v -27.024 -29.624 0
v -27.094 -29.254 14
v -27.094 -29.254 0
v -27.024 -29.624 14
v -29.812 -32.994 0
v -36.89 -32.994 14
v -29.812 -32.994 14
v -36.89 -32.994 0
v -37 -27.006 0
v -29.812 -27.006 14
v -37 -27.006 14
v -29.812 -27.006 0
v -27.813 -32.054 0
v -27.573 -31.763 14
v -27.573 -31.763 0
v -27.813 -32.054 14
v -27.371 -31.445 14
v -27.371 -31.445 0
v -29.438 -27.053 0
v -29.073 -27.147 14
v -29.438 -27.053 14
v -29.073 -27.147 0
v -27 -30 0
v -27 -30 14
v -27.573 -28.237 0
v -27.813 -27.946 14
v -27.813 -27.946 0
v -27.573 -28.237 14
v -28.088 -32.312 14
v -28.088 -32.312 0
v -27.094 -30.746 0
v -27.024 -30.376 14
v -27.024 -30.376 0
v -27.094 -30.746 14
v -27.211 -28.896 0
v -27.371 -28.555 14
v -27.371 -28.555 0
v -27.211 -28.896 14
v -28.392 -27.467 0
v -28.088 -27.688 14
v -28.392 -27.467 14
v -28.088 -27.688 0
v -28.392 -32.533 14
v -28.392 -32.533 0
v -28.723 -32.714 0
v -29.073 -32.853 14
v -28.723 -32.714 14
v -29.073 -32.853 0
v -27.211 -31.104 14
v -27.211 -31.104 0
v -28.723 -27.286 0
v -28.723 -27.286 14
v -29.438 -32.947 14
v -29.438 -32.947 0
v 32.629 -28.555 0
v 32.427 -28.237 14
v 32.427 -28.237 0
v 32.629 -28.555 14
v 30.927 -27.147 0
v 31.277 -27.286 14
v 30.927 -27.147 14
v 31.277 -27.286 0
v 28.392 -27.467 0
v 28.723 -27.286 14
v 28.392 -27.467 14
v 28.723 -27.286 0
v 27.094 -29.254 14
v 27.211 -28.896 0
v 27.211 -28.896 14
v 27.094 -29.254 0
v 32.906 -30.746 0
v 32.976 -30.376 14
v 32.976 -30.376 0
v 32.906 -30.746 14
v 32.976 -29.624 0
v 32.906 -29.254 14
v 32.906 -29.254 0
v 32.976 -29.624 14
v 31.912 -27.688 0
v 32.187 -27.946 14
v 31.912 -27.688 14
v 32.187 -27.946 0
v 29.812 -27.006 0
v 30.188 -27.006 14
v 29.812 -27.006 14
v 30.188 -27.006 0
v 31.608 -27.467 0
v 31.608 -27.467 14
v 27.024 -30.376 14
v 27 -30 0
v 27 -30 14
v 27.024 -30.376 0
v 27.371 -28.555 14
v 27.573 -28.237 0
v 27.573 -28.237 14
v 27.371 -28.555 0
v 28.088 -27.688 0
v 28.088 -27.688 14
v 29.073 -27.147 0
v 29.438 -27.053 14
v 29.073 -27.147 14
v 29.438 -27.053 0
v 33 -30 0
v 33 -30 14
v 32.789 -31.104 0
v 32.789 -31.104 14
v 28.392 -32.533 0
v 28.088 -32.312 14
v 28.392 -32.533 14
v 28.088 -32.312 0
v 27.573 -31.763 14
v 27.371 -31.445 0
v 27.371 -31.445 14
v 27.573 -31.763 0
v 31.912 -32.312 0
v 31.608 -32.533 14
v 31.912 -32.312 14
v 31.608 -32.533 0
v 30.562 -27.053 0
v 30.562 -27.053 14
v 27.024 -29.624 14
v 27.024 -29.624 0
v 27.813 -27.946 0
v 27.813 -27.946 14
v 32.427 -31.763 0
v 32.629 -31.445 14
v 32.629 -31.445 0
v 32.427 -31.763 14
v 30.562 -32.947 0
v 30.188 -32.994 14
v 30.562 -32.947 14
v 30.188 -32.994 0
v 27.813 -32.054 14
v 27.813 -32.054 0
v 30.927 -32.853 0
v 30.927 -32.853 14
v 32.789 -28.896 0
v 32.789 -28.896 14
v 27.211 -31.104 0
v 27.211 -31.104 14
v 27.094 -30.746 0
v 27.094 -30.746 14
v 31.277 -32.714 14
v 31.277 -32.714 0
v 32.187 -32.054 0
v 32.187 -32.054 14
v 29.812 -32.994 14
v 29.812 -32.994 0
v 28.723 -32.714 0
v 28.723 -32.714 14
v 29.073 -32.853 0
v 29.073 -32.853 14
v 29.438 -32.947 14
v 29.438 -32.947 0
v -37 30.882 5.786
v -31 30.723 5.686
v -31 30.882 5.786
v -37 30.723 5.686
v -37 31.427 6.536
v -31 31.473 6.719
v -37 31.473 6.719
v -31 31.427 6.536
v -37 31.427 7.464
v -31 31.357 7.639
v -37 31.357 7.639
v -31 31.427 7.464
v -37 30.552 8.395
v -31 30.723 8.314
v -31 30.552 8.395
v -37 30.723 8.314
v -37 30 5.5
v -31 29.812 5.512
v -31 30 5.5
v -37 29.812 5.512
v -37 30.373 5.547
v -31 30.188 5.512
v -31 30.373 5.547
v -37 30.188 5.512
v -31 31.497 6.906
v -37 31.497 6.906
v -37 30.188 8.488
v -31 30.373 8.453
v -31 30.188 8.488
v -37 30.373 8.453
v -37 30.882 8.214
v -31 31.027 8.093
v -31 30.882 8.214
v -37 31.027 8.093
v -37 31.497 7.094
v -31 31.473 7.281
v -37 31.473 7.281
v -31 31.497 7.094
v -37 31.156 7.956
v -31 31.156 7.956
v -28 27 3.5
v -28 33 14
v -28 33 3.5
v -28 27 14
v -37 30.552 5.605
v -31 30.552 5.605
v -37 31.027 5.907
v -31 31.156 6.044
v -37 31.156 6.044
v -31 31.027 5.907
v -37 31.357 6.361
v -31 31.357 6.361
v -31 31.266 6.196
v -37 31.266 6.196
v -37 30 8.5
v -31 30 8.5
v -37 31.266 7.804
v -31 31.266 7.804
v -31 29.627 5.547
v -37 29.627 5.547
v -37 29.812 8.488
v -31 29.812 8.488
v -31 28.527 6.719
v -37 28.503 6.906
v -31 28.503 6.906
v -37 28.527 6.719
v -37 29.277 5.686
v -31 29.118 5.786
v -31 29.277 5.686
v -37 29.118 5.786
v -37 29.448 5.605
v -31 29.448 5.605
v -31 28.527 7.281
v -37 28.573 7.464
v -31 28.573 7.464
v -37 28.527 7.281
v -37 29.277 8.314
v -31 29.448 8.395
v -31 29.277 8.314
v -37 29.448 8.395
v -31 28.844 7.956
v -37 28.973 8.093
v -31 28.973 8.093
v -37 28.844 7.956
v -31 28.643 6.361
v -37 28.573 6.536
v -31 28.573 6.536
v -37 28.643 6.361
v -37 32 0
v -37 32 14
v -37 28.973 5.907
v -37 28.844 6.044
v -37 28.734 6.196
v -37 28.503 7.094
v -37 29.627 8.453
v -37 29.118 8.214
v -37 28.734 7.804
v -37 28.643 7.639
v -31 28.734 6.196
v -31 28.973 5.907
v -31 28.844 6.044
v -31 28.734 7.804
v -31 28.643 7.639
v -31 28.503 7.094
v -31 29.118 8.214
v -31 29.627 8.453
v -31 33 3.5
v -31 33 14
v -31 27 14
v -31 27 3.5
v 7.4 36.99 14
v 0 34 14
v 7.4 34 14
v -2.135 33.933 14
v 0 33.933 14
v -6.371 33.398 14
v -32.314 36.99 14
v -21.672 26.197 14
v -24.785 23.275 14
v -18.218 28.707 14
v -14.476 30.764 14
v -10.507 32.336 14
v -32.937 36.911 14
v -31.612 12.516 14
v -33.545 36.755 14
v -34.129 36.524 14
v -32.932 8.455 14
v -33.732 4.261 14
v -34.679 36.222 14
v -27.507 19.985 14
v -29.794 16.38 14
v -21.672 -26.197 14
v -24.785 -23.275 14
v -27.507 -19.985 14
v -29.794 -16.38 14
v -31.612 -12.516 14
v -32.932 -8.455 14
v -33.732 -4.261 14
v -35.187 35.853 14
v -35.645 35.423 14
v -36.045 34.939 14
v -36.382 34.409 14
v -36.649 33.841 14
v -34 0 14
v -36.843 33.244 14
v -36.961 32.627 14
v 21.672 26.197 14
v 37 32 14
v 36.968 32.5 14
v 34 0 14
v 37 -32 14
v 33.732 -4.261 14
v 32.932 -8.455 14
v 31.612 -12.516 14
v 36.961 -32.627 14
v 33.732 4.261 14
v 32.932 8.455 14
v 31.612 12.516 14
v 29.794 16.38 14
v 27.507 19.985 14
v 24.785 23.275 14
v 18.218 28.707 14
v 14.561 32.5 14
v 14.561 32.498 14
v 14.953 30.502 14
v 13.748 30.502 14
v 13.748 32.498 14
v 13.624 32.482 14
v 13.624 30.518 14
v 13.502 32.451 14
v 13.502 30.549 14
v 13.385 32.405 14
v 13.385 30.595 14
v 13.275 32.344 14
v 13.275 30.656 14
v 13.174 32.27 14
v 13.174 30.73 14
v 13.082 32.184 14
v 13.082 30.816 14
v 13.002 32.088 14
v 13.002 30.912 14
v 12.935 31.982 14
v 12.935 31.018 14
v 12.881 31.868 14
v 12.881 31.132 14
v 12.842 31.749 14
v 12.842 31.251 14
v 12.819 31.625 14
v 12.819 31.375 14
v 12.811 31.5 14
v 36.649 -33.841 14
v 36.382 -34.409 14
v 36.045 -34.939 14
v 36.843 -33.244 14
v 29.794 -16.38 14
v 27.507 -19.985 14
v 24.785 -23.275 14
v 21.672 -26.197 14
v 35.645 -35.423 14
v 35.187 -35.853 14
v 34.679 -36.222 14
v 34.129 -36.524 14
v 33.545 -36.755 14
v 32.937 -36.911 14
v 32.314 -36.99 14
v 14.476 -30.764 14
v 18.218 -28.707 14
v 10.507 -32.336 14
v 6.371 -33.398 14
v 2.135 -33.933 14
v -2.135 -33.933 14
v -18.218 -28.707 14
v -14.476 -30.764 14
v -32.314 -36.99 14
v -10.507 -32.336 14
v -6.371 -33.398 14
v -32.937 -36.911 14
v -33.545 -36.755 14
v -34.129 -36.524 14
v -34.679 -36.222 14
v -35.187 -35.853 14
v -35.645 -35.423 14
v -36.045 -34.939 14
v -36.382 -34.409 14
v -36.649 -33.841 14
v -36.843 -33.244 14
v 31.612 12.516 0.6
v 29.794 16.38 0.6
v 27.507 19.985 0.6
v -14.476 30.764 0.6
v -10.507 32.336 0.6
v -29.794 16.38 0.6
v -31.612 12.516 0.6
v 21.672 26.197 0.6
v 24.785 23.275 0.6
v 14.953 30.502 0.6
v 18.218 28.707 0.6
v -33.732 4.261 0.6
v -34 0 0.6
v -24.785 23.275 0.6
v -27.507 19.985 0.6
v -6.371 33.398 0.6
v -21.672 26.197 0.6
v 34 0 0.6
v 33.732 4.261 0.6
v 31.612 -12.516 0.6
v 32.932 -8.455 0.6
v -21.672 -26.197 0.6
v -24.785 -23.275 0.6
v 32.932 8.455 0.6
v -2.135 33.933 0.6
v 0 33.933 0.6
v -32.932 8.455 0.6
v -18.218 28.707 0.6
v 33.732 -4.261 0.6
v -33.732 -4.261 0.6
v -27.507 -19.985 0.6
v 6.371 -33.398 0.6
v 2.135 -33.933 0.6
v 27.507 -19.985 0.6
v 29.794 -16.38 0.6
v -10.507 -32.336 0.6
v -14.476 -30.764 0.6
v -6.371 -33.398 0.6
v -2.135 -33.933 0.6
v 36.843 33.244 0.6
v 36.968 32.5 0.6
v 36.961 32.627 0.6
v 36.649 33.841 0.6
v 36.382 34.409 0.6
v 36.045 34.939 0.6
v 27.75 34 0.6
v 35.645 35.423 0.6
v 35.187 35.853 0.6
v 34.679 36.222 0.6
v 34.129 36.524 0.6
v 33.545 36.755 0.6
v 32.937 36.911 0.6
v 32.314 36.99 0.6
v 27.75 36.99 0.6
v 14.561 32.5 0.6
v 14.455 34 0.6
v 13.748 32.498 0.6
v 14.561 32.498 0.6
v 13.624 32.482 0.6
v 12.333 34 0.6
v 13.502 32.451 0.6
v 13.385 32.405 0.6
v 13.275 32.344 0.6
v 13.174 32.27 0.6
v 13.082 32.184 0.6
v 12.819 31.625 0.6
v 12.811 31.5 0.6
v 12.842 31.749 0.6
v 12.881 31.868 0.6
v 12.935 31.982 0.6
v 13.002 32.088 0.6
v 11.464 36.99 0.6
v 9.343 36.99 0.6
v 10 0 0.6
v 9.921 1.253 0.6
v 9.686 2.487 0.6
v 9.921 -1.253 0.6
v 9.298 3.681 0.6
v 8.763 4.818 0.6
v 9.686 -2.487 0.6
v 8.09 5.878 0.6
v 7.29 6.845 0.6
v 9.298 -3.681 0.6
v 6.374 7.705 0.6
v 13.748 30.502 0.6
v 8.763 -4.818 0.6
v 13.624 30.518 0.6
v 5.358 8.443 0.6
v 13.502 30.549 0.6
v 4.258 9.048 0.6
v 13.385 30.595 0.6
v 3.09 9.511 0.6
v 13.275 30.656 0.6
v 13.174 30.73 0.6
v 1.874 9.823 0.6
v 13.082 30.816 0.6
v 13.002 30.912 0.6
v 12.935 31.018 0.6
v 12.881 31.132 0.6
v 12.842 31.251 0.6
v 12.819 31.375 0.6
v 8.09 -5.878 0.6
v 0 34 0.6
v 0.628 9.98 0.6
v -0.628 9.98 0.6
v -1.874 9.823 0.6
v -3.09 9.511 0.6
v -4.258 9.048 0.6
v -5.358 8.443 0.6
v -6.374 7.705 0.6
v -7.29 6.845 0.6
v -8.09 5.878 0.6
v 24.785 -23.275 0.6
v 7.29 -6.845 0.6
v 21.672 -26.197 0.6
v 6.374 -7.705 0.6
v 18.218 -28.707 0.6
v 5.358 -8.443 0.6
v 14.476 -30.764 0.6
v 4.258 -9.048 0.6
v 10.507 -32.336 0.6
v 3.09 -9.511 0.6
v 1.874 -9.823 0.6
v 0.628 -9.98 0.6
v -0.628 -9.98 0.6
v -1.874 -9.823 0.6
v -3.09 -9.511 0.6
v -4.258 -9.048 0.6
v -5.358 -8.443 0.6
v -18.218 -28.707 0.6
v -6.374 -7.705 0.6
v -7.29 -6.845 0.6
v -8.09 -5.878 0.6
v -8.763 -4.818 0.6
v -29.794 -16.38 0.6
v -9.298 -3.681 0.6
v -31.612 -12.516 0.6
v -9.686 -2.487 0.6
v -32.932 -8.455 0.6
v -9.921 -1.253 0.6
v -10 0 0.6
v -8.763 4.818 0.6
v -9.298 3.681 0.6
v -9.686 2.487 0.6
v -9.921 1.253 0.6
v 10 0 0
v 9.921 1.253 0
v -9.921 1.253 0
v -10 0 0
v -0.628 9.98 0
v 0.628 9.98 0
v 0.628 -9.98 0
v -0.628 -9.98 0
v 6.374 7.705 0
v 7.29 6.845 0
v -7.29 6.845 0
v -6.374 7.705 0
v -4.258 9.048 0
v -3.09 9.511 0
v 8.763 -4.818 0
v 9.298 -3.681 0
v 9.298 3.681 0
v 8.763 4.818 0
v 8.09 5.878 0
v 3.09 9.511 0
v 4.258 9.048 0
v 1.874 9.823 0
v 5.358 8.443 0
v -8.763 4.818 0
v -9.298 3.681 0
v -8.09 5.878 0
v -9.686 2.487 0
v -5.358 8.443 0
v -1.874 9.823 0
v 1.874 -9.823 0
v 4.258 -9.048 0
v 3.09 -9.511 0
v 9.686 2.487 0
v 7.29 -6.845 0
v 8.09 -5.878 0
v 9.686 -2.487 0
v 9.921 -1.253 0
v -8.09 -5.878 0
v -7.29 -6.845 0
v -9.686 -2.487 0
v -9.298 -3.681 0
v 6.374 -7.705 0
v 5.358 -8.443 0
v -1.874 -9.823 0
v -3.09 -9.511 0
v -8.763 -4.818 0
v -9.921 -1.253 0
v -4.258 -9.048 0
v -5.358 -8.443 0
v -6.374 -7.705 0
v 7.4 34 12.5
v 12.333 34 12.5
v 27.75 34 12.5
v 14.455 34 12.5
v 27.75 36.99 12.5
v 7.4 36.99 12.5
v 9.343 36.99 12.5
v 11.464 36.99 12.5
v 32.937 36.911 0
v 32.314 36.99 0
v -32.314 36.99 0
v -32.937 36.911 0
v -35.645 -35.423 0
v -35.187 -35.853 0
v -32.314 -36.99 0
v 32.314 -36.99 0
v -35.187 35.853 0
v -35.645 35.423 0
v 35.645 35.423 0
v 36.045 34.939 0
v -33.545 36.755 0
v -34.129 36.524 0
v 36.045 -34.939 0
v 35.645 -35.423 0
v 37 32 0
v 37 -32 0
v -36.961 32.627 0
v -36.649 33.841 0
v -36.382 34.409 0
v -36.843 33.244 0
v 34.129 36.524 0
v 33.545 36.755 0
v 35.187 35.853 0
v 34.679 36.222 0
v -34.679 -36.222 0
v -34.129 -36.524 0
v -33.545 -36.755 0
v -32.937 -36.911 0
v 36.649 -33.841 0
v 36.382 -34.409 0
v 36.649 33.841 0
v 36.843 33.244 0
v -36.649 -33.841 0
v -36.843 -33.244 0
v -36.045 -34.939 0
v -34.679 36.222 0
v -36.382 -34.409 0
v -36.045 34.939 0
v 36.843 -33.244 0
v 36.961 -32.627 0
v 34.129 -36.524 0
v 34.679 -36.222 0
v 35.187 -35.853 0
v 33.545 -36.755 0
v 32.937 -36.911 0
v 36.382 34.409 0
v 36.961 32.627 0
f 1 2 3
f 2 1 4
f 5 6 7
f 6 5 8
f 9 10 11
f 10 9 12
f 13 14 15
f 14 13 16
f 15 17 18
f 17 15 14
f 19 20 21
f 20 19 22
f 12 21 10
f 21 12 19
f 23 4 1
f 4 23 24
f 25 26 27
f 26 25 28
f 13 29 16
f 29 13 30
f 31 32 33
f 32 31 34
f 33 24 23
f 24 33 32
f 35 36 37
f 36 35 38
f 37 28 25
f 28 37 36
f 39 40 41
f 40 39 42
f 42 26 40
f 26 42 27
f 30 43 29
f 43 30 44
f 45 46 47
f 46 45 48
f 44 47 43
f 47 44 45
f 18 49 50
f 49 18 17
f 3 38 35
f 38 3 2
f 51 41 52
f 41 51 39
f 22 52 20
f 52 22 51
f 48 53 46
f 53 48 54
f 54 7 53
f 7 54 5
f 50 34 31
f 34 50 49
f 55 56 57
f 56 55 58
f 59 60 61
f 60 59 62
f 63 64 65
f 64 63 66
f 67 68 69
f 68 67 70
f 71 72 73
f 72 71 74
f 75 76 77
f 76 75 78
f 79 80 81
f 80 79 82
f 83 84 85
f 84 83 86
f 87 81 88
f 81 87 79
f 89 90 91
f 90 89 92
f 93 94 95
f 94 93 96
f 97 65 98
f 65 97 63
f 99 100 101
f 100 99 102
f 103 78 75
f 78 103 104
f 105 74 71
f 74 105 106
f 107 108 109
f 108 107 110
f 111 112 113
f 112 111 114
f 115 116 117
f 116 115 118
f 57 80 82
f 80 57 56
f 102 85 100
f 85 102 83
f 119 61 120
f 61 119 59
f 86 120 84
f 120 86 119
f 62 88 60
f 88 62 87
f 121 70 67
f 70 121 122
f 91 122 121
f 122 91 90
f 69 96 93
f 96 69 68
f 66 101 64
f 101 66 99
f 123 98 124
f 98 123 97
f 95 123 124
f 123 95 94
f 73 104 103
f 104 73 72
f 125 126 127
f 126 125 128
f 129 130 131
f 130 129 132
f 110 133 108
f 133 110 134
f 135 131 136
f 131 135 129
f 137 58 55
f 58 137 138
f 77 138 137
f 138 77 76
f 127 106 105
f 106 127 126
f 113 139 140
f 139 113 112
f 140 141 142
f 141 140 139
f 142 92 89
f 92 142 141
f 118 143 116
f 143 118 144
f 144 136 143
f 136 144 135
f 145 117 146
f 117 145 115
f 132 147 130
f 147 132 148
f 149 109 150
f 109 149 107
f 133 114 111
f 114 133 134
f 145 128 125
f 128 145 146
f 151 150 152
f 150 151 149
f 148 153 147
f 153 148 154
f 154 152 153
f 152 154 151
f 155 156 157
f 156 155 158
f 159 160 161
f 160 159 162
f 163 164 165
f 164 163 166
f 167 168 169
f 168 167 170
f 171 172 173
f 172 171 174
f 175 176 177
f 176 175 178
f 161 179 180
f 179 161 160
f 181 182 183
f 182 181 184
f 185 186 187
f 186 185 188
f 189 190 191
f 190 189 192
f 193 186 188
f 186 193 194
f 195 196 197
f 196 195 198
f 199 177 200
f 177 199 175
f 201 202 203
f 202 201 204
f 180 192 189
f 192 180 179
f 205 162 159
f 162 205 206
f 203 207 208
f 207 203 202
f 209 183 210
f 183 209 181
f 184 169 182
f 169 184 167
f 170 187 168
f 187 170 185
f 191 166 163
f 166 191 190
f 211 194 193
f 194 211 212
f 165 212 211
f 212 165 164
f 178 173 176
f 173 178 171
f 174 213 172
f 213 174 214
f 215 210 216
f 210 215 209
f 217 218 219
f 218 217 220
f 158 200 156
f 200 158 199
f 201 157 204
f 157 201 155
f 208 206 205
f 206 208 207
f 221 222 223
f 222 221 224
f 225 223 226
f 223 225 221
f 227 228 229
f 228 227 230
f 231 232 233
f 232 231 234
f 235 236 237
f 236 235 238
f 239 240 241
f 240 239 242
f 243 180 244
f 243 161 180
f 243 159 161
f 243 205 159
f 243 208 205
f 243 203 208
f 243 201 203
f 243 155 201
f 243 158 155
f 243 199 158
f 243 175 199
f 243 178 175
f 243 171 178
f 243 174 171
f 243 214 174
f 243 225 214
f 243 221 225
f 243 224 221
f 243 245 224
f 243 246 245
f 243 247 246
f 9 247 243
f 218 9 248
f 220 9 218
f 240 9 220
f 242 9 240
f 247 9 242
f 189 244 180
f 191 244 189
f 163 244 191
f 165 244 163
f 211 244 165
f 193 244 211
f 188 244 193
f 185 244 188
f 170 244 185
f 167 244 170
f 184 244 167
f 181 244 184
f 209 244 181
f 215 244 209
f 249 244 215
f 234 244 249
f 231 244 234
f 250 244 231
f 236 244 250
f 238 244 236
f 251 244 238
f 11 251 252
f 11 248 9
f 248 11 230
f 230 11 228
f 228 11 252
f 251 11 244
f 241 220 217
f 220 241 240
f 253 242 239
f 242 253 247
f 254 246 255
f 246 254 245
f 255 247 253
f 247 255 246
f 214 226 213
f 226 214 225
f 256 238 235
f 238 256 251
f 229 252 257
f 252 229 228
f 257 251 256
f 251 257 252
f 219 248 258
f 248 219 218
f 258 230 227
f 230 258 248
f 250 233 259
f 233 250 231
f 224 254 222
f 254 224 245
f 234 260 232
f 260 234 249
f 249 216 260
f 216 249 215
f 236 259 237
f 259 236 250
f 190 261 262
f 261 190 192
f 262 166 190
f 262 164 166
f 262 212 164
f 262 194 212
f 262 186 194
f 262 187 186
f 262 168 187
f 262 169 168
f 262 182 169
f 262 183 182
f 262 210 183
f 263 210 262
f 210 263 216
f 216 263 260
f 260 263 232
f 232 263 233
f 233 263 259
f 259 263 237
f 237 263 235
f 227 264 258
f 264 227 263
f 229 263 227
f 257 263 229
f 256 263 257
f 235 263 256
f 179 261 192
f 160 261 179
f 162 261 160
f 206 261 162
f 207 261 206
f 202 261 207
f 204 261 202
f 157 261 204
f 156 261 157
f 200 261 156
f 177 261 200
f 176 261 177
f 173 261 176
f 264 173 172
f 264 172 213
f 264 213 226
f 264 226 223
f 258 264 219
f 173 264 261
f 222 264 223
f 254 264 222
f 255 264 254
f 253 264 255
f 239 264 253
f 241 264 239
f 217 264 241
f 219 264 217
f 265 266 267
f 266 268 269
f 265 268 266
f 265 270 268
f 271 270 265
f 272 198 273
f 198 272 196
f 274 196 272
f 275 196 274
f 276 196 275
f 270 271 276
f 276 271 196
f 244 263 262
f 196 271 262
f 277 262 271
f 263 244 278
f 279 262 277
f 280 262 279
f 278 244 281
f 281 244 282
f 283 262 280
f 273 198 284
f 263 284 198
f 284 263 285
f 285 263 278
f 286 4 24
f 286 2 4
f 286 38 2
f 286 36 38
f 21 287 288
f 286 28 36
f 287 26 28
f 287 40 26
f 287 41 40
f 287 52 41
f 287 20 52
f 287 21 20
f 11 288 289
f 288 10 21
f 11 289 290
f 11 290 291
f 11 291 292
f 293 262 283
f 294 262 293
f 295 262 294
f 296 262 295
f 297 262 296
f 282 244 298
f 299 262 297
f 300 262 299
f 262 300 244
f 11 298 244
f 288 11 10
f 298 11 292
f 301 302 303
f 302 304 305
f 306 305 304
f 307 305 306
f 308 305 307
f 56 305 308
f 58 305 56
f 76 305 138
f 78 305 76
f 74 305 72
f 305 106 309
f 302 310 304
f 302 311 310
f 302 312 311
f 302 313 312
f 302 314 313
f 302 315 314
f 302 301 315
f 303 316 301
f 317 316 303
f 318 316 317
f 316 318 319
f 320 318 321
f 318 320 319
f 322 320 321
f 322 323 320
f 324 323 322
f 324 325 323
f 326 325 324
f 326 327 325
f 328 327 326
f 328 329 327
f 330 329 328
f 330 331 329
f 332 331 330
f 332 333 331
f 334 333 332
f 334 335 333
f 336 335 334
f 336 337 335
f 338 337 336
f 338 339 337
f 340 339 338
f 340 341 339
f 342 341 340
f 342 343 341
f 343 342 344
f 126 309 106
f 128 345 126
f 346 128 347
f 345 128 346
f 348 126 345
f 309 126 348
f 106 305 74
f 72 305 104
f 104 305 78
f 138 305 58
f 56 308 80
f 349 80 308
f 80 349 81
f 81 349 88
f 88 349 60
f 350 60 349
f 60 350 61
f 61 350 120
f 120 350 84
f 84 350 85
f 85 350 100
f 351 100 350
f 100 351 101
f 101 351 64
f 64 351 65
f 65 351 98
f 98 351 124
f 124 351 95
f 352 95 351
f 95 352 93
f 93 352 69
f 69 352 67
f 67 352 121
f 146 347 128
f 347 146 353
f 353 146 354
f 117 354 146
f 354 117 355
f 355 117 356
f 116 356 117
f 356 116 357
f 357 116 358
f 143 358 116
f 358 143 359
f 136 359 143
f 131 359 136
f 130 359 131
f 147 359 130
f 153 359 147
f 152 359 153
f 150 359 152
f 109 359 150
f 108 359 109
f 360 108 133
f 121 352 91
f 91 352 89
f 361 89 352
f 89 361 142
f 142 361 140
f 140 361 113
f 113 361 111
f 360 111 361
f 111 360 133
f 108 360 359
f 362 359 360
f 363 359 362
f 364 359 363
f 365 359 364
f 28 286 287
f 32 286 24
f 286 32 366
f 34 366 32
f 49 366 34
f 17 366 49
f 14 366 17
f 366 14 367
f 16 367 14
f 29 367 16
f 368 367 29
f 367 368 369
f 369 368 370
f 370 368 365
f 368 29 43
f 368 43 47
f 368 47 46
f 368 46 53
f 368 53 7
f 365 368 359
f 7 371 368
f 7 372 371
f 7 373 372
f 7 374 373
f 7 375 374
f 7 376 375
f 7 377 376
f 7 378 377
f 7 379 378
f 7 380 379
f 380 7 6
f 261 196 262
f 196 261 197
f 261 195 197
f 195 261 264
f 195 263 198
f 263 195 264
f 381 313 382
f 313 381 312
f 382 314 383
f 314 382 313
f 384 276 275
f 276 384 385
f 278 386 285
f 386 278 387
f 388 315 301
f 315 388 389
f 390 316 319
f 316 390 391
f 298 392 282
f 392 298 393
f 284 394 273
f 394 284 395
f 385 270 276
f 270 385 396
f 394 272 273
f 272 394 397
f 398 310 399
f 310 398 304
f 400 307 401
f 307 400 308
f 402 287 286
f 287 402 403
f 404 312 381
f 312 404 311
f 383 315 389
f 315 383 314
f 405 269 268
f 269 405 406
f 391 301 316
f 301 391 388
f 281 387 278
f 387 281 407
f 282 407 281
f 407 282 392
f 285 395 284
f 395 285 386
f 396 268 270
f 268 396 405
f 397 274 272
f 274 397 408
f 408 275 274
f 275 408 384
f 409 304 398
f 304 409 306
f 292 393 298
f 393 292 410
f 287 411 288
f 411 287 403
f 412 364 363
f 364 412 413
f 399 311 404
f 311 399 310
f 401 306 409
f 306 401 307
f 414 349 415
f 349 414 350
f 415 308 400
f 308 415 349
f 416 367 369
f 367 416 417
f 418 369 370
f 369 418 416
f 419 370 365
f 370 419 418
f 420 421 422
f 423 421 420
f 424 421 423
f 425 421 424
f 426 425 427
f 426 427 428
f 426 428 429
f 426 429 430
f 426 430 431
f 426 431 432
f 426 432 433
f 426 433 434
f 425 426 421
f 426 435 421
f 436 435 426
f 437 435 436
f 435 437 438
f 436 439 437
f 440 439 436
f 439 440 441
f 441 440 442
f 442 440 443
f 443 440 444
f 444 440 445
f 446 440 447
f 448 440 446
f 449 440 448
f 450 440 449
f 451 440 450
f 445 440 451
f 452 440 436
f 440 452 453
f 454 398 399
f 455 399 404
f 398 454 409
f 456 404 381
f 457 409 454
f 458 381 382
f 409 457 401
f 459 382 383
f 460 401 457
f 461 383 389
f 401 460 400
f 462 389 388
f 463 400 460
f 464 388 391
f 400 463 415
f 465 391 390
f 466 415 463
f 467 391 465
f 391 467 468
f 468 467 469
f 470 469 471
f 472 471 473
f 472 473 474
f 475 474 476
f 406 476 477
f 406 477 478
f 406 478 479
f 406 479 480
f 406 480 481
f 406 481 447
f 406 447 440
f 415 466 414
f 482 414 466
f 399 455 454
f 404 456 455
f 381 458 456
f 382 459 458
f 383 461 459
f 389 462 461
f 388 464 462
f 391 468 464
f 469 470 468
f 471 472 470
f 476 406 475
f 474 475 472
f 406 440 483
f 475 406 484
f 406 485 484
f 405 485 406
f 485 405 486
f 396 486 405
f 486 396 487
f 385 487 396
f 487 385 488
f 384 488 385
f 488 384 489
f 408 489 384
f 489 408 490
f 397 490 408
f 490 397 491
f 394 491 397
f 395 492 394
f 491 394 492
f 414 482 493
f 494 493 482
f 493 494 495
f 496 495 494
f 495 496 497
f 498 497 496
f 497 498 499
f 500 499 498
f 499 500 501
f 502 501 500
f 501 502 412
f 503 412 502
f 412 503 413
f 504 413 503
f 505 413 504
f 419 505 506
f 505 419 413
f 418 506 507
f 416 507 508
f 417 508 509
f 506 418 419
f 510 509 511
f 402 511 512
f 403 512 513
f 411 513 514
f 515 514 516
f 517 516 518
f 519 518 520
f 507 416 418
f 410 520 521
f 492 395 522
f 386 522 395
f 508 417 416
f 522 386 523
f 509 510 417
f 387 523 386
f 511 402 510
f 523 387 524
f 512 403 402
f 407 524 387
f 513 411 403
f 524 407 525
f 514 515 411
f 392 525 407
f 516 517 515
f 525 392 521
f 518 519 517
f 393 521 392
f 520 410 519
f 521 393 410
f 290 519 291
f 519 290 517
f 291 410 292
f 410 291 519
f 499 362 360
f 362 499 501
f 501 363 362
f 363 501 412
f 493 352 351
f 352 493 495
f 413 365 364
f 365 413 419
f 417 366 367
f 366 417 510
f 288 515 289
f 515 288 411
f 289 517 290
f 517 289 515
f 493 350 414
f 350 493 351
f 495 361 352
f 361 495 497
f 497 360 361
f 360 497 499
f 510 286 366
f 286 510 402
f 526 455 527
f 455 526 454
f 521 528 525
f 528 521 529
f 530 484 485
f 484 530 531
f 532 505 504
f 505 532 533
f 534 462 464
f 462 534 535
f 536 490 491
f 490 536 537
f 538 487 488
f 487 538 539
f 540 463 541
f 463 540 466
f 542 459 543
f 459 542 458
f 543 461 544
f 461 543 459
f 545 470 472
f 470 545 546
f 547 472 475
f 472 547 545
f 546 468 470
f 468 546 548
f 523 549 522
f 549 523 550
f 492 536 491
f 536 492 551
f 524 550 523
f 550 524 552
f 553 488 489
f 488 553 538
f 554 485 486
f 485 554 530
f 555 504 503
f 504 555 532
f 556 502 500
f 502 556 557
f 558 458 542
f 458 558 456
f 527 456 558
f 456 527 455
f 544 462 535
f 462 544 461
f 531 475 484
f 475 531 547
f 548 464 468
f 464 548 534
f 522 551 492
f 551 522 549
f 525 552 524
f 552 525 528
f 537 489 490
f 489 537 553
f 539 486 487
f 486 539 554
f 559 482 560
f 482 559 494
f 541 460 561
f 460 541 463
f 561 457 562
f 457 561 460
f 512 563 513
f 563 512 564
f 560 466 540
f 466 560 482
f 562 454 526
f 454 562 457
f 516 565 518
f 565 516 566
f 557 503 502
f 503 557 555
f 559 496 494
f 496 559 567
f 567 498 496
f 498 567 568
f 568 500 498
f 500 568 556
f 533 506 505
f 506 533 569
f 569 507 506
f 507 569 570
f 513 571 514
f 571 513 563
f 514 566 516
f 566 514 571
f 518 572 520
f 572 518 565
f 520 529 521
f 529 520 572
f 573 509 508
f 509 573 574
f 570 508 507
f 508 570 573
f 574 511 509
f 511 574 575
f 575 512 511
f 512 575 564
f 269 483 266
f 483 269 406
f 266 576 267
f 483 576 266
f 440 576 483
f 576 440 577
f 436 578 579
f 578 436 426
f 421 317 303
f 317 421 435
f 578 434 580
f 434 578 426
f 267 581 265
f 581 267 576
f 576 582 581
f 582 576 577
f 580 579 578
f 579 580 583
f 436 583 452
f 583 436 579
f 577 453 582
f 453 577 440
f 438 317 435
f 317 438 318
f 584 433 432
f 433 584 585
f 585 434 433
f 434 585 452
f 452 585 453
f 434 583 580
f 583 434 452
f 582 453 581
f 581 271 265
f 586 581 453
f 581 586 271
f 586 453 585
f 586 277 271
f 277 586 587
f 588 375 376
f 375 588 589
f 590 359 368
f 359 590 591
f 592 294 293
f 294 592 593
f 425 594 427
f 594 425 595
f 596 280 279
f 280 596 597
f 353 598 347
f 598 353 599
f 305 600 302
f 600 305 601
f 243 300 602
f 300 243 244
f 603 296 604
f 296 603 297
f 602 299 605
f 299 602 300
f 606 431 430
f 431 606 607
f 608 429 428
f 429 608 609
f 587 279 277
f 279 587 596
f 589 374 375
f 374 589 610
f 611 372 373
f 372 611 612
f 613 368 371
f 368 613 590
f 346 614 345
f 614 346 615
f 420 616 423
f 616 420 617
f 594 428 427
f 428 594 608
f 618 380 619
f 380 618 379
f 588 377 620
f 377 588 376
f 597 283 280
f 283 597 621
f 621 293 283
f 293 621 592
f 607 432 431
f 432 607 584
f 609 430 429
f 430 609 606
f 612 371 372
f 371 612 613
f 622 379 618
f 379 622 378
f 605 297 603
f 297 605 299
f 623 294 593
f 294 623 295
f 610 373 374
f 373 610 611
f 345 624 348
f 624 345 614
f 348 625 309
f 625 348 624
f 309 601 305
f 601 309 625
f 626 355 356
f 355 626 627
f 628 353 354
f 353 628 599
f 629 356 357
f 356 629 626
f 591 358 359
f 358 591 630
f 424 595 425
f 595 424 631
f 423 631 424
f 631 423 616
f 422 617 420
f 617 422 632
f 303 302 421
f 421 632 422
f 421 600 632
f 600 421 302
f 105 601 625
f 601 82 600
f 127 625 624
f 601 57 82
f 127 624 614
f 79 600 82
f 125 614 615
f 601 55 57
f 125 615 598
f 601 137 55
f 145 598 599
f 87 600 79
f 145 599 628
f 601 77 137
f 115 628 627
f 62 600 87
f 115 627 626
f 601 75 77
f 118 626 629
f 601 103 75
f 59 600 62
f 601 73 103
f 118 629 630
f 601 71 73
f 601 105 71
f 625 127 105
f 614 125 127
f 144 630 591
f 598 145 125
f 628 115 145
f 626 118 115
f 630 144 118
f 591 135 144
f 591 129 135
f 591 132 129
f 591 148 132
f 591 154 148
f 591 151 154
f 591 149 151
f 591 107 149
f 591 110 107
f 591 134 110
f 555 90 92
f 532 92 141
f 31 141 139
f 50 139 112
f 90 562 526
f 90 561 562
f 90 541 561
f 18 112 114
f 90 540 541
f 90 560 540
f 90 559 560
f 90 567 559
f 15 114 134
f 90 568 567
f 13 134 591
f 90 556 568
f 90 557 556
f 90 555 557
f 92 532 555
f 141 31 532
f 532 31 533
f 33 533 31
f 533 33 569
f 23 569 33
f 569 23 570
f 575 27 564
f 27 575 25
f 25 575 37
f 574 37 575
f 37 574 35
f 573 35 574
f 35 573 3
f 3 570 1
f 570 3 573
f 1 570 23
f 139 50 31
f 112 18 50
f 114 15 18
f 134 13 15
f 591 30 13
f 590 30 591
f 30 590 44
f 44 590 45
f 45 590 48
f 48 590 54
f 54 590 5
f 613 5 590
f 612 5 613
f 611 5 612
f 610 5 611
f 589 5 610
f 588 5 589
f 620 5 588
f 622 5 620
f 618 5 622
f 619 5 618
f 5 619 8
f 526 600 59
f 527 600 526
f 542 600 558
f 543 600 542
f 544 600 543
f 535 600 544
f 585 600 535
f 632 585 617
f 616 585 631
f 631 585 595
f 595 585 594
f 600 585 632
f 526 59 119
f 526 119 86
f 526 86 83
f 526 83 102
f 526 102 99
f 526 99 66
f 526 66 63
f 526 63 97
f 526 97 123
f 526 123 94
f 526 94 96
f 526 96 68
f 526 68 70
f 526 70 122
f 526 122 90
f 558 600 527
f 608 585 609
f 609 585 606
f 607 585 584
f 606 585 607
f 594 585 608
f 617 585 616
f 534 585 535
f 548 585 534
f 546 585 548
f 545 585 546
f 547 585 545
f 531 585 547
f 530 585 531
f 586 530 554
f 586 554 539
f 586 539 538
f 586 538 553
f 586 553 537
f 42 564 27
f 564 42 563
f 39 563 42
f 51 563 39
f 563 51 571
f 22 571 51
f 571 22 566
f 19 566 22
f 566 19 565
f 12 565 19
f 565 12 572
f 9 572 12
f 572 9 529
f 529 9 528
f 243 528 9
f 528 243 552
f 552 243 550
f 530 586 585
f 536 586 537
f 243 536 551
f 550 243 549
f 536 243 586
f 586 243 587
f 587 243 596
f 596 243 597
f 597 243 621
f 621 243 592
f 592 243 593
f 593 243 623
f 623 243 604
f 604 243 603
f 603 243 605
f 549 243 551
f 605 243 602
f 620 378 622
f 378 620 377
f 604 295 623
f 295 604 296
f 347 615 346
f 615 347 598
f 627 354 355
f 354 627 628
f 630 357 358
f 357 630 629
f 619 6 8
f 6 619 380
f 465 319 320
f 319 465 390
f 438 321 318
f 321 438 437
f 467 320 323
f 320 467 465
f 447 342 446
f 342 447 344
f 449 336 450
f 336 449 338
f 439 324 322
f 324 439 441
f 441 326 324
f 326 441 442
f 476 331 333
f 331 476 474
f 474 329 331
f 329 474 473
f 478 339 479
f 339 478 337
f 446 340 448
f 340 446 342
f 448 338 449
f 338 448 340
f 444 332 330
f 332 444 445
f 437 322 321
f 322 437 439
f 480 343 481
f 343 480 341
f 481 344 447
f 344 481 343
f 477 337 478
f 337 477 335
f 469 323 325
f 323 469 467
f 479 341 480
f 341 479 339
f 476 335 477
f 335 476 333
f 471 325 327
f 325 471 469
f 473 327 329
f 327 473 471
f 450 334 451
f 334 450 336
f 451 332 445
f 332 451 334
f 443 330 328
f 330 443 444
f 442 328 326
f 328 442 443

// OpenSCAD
$fn = 50;


union() {
	difference() {
		union() {
			translate(v = [0, 0, 0]) {
				rotate(a = [0, 0, 0]) {
					hull() {
						translate(v = [-32.0000000000, 32.0000000000, 0]) {
							rotate(a = [0, 0, 0]) {
								translate(v = [0, 0, 0]) {
									rotate(a = [0, 0, 0]) {
										cylinder(h = 14, r = 5);
									}
								}
							}
						}
						translate(v = [32.0000000000, 32.0000000000, 0]) {
							rotate(a = [0, 0, 0]) {
								translate(v = [0, 0, 0]) {
									rotate(a = [0, 0, 0]) {
										cylinder(h = 14, r = 5);
									}
								}
							}
						}
						translate(v = [-32.0000000000, -32.0000000000, 0]) {
							rotate(a = [0, 0, 0]) {
								translate(v = [0, 0, 0]) {
									rotate(a = [0, 0, 0]) {
										cylinder(h = 14, r = 5);
									}
								}
							}
						}
						translate(v = [32.0000000000, -32.0000000000, 0]) {
							rotate(a = [0, 0, 0]) {
								translate(v = [0, 0, 0]) {
									rotate(a = [0, 0, 0]) {
										cylinder(h = 14, r = 5);
									}
								}
							}
						}
					}
				}
			}
		}
		union() {
			translate(v = [-37.5000000000, -30.0000000000, -125]) {
				rotate(a = [0, 0, 0]) {
					hull() {
						translate(v = [7.5000000000, 0, 0]) {
							rotate(a = [0, 0, 0]) {
								translate(v = [0, 0, 0]) {
									rotate(a = [0, 0, 0]) {
										cylinder(h = 250, r = 3.0000000000);
									}
								}
							}
						}
						translate(v = [-7.5000000000, 0, 0]) {
							rotate(a = [0, 0, 0]) {
								translate(v = [0, 0, 0]) {
									rotate(a = [0, 0, 0]) {
										cylinder(h = 250, r = 3.0000000000);
									}
								}
							}
						}
					}
				}
			}
			translate(v = [30.0000000000, -30.0000000000, -125.0000000000]) {
				rotate(a = [0, 0, 0]) {
					cylinder(h = 250, r = 3.0000000000);
				}
			}
			translate(v = [-37.0000000000, 30.0000000000, 7.0000000000]) {
				rotate(a = [0, 90, 0]) {
					cylinder(h = 9, r = 1.5000000000);
				}
			}
			translate(v = [-31.0000000000, 27.0000000000, 3.5000000000]) {
				rotate(a = [0, 0, 0]) {
					cube(size = [3, 6, 10.5000000000]);
				}
			}
			translate(v = [0, 0, 0.6000000000]) {
				rotate(a = [0, 0, 0]) {
					cylinder(h = 16.4000000000, r = 34.0000000000);
				}
			}
			translate(v = [0, 0, -7.0000000000]) {
				rotate(a = [0, 0, 0]) {
					cylinder(h = 14, r = 10.0000000000);
				}
			}
			translate(v = [0.0000000000, 32.5000000000, 0.6000000000]) {
				rotate(a = [0, 0, 0]) {
					cube(size = [37.0000000000, 1.5000000000, 16.4000000000]);
				}
			}
			translate(v = [27.7500000000, 32.5000000000, 0.6000000000]) {
				rotate(a = [0, 0, 0]) {
					cube(size = [9.2500000000, 4.5000000000, 16.4000000000]);
				}
			}
			translate(v = [7.4000000000, 32.5000000000, 12.5000000000]) {
				rotate(a = [0, 0, 0]) {
					cube(size = [29.6000000000, 4.5000000000, 1.5000000000]);
				}
			}
			translate(v = [8.5833333333, 37.7500000000, 0.6000000000]) {
				rotate(a = [0, 0, -45]) {
					cube(size = [7.5000000000, 1.5000000000, 16.4000000000]);
				}
			}
			translate(v = [7.0610000000, 30.5000000000, 0.6000000000]) {
				rotate(a = [0, 0, 0]) {
					cube(size = [7.5000000000, 2, 13.4000000000]);
				}
			}
		}
	}
	union() {
		translate(v = [16.3110000000, 31.5000000000, 0]) {
			rotate(a = [0, 0, 0]) {
				hull() {
					translate(v = [2.5000000000, 0, 0]) {
						rotate(a = [0, 0, 0]) {
							translate(v = [0, 0, 0]) {
								rotate(a = [0, 0, 0]) {
									cylinder(h = 14, r = 1.0000000000);
								}
							}
						}
					}
					translate(v = [-2.5000000000, 0, 0]) {
						rotate(a = [0, 0, 0]) {
							translate(v = [0, 0, 0]) {
								rotate(a = [0, 0, 0]) {
									cylinder(h = 14, r = 1.0000000000);
								}
							}
						}
					}
				}
			}
		}
	}
}
